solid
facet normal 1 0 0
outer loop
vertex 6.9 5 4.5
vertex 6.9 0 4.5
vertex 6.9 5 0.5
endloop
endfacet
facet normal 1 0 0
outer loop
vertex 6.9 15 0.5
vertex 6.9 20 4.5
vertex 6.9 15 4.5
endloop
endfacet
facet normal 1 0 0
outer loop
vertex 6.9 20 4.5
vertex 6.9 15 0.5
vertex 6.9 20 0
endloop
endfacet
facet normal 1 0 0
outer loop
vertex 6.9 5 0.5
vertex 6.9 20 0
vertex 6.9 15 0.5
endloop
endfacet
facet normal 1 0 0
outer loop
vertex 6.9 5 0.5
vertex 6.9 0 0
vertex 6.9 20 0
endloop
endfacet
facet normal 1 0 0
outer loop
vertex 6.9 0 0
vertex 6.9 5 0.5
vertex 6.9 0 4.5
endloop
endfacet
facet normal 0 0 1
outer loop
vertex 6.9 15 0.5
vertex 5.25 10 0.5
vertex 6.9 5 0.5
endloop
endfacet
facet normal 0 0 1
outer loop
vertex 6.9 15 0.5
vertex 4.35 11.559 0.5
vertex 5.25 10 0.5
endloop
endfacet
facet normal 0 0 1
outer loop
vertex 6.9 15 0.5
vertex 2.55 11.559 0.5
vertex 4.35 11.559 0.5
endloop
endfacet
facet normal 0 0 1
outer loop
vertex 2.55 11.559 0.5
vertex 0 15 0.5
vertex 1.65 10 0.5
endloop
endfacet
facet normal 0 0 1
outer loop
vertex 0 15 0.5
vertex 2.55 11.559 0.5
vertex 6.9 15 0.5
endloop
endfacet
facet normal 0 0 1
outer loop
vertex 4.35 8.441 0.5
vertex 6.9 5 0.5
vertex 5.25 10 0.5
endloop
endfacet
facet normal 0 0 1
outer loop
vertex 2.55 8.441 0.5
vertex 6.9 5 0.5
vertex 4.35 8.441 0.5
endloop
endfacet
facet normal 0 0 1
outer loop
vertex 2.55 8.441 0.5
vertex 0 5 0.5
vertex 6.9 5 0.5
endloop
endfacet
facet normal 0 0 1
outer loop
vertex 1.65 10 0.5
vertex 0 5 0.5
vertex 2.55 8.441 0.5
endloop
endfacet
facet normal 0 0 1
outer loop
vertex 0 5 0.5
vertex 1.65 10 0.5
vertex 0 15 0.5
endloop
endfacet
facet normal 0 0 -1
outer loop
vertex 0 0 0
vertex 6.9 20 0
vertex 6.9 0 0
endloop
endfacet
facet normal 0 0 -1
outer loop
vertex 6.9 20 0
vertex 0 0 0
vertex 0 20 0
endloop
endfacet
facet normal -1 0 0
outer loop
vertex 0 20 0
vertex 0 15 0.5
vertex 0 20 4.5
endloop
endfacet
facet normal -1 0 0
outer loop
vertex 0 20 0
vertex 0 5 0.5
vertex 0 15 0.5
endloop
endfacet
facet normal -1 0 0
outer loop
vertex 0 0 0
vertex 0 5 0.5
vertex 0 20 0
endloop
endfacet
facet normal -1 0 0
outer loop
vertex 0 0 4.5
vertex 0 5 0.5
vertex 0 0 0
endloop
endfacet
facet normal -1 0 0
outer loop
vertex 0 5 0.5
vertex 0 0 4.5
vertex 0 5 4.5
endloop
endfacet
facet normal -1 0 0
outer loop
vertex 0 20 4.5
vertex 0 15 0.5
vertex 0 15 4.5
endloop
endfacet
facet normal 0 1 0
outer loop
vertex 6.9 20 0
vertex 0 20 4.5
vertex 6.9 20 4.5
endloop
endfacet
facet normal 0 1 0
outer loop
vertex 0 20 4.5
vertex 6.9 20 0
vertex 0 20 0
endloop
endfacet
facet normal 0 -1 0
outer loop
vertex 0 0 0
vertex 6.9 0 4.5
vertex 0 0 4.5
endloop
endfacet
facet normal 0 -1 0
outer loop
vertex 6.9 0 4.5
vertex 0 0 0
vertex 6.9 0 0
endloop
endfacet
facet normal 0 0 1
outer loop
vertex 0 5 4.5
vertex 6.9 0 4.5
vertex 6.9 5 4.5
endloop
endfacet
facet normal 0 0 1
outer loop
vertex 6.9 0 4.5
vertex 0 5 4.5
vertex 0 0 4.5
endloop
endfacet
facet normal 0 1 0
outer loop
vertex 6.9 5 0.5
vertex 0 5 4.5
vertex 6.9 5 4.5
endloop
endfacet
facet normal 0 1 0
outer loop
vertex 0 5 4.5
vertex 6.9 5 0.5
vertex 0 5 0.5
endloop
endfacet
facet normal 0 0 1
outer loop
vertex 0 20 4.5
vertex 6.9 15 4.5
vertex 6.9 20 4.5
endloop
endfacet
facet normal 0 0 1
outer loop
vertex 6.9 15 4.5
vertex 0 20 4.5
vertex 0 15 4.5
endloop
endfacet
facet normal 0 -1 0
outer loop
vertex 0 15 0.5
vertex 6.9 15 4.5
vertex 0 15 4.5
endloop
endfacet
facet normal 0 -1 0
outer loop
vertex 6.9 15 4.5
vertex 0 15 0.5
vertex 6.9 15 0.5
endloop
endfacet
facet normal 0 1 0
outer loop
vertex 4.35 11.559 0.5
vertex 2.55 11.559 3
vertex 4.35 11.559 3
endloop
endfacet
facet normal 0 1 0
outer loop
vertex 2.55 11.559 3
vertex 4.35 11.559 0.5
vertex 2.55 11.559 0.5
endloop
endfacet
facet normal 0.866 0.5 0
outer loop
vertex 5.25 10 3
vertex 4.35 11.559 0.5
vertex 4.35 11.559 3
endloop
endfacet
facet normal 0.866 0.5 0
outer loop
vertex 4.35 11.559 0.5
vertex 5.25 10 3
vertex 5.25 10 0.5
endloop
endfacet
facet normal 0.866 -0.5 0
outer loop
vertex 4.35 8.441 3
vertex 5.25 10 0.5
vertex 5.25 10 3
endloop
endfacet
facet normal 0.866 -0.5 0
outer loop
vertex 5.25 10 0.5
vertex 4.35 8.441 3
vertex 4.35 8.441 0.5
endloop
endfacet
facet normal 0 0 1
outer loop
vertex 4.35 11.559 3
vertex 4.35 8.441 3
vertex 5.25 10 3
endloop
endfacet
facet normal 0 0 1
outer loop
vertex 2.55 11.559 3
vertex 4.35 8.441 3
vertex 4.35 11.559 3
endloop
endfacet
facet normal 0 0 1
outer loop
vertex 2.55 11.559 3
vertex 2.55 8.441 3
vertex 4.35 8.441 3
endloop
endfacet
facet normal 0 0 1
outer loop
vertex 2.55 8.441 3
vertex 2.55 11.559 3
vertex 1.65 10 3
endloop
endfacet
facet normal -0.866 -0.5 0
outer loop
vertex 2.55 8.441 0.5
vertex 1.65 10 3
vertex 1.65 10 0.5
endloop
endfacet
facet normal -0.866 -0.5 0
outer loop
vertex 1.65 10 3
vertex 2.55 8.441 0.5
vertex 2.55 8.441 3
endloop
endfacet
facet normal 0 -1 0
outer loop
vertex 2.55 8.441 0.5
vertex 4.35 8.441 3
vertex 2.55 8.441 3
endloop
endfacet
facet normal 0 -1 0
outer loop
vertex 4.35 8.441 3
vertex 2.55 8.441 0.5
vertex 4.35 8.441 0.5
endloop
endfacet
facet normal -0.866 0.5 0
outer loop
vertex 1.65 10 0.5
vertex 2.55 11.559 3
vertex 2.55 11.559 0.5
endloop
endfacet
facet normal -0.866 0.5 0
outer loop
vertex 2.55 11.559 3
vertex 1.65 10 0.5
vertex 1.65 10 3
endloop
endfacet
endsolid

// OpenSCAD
plateWidth = 6.9;
plateHeight = 0.5;
plateLength = 20;
blockerHeight = 4;
blockerLength = 5;
cube([plateWidth, plateLength, plateHeight]);
translate([0, 0, plateHeight])
	cube([plateWidth, blockerLength, blockerHeight]);
translate([0, plateLength-blockerLength, plateHeight])
	cube([plateWidth, blockerLength, blockerHeight]);
translate([plateWidth/2, plateLength/2, plateHeight])
	cylinder(d=3.6, h=2.5, $fn=6);
